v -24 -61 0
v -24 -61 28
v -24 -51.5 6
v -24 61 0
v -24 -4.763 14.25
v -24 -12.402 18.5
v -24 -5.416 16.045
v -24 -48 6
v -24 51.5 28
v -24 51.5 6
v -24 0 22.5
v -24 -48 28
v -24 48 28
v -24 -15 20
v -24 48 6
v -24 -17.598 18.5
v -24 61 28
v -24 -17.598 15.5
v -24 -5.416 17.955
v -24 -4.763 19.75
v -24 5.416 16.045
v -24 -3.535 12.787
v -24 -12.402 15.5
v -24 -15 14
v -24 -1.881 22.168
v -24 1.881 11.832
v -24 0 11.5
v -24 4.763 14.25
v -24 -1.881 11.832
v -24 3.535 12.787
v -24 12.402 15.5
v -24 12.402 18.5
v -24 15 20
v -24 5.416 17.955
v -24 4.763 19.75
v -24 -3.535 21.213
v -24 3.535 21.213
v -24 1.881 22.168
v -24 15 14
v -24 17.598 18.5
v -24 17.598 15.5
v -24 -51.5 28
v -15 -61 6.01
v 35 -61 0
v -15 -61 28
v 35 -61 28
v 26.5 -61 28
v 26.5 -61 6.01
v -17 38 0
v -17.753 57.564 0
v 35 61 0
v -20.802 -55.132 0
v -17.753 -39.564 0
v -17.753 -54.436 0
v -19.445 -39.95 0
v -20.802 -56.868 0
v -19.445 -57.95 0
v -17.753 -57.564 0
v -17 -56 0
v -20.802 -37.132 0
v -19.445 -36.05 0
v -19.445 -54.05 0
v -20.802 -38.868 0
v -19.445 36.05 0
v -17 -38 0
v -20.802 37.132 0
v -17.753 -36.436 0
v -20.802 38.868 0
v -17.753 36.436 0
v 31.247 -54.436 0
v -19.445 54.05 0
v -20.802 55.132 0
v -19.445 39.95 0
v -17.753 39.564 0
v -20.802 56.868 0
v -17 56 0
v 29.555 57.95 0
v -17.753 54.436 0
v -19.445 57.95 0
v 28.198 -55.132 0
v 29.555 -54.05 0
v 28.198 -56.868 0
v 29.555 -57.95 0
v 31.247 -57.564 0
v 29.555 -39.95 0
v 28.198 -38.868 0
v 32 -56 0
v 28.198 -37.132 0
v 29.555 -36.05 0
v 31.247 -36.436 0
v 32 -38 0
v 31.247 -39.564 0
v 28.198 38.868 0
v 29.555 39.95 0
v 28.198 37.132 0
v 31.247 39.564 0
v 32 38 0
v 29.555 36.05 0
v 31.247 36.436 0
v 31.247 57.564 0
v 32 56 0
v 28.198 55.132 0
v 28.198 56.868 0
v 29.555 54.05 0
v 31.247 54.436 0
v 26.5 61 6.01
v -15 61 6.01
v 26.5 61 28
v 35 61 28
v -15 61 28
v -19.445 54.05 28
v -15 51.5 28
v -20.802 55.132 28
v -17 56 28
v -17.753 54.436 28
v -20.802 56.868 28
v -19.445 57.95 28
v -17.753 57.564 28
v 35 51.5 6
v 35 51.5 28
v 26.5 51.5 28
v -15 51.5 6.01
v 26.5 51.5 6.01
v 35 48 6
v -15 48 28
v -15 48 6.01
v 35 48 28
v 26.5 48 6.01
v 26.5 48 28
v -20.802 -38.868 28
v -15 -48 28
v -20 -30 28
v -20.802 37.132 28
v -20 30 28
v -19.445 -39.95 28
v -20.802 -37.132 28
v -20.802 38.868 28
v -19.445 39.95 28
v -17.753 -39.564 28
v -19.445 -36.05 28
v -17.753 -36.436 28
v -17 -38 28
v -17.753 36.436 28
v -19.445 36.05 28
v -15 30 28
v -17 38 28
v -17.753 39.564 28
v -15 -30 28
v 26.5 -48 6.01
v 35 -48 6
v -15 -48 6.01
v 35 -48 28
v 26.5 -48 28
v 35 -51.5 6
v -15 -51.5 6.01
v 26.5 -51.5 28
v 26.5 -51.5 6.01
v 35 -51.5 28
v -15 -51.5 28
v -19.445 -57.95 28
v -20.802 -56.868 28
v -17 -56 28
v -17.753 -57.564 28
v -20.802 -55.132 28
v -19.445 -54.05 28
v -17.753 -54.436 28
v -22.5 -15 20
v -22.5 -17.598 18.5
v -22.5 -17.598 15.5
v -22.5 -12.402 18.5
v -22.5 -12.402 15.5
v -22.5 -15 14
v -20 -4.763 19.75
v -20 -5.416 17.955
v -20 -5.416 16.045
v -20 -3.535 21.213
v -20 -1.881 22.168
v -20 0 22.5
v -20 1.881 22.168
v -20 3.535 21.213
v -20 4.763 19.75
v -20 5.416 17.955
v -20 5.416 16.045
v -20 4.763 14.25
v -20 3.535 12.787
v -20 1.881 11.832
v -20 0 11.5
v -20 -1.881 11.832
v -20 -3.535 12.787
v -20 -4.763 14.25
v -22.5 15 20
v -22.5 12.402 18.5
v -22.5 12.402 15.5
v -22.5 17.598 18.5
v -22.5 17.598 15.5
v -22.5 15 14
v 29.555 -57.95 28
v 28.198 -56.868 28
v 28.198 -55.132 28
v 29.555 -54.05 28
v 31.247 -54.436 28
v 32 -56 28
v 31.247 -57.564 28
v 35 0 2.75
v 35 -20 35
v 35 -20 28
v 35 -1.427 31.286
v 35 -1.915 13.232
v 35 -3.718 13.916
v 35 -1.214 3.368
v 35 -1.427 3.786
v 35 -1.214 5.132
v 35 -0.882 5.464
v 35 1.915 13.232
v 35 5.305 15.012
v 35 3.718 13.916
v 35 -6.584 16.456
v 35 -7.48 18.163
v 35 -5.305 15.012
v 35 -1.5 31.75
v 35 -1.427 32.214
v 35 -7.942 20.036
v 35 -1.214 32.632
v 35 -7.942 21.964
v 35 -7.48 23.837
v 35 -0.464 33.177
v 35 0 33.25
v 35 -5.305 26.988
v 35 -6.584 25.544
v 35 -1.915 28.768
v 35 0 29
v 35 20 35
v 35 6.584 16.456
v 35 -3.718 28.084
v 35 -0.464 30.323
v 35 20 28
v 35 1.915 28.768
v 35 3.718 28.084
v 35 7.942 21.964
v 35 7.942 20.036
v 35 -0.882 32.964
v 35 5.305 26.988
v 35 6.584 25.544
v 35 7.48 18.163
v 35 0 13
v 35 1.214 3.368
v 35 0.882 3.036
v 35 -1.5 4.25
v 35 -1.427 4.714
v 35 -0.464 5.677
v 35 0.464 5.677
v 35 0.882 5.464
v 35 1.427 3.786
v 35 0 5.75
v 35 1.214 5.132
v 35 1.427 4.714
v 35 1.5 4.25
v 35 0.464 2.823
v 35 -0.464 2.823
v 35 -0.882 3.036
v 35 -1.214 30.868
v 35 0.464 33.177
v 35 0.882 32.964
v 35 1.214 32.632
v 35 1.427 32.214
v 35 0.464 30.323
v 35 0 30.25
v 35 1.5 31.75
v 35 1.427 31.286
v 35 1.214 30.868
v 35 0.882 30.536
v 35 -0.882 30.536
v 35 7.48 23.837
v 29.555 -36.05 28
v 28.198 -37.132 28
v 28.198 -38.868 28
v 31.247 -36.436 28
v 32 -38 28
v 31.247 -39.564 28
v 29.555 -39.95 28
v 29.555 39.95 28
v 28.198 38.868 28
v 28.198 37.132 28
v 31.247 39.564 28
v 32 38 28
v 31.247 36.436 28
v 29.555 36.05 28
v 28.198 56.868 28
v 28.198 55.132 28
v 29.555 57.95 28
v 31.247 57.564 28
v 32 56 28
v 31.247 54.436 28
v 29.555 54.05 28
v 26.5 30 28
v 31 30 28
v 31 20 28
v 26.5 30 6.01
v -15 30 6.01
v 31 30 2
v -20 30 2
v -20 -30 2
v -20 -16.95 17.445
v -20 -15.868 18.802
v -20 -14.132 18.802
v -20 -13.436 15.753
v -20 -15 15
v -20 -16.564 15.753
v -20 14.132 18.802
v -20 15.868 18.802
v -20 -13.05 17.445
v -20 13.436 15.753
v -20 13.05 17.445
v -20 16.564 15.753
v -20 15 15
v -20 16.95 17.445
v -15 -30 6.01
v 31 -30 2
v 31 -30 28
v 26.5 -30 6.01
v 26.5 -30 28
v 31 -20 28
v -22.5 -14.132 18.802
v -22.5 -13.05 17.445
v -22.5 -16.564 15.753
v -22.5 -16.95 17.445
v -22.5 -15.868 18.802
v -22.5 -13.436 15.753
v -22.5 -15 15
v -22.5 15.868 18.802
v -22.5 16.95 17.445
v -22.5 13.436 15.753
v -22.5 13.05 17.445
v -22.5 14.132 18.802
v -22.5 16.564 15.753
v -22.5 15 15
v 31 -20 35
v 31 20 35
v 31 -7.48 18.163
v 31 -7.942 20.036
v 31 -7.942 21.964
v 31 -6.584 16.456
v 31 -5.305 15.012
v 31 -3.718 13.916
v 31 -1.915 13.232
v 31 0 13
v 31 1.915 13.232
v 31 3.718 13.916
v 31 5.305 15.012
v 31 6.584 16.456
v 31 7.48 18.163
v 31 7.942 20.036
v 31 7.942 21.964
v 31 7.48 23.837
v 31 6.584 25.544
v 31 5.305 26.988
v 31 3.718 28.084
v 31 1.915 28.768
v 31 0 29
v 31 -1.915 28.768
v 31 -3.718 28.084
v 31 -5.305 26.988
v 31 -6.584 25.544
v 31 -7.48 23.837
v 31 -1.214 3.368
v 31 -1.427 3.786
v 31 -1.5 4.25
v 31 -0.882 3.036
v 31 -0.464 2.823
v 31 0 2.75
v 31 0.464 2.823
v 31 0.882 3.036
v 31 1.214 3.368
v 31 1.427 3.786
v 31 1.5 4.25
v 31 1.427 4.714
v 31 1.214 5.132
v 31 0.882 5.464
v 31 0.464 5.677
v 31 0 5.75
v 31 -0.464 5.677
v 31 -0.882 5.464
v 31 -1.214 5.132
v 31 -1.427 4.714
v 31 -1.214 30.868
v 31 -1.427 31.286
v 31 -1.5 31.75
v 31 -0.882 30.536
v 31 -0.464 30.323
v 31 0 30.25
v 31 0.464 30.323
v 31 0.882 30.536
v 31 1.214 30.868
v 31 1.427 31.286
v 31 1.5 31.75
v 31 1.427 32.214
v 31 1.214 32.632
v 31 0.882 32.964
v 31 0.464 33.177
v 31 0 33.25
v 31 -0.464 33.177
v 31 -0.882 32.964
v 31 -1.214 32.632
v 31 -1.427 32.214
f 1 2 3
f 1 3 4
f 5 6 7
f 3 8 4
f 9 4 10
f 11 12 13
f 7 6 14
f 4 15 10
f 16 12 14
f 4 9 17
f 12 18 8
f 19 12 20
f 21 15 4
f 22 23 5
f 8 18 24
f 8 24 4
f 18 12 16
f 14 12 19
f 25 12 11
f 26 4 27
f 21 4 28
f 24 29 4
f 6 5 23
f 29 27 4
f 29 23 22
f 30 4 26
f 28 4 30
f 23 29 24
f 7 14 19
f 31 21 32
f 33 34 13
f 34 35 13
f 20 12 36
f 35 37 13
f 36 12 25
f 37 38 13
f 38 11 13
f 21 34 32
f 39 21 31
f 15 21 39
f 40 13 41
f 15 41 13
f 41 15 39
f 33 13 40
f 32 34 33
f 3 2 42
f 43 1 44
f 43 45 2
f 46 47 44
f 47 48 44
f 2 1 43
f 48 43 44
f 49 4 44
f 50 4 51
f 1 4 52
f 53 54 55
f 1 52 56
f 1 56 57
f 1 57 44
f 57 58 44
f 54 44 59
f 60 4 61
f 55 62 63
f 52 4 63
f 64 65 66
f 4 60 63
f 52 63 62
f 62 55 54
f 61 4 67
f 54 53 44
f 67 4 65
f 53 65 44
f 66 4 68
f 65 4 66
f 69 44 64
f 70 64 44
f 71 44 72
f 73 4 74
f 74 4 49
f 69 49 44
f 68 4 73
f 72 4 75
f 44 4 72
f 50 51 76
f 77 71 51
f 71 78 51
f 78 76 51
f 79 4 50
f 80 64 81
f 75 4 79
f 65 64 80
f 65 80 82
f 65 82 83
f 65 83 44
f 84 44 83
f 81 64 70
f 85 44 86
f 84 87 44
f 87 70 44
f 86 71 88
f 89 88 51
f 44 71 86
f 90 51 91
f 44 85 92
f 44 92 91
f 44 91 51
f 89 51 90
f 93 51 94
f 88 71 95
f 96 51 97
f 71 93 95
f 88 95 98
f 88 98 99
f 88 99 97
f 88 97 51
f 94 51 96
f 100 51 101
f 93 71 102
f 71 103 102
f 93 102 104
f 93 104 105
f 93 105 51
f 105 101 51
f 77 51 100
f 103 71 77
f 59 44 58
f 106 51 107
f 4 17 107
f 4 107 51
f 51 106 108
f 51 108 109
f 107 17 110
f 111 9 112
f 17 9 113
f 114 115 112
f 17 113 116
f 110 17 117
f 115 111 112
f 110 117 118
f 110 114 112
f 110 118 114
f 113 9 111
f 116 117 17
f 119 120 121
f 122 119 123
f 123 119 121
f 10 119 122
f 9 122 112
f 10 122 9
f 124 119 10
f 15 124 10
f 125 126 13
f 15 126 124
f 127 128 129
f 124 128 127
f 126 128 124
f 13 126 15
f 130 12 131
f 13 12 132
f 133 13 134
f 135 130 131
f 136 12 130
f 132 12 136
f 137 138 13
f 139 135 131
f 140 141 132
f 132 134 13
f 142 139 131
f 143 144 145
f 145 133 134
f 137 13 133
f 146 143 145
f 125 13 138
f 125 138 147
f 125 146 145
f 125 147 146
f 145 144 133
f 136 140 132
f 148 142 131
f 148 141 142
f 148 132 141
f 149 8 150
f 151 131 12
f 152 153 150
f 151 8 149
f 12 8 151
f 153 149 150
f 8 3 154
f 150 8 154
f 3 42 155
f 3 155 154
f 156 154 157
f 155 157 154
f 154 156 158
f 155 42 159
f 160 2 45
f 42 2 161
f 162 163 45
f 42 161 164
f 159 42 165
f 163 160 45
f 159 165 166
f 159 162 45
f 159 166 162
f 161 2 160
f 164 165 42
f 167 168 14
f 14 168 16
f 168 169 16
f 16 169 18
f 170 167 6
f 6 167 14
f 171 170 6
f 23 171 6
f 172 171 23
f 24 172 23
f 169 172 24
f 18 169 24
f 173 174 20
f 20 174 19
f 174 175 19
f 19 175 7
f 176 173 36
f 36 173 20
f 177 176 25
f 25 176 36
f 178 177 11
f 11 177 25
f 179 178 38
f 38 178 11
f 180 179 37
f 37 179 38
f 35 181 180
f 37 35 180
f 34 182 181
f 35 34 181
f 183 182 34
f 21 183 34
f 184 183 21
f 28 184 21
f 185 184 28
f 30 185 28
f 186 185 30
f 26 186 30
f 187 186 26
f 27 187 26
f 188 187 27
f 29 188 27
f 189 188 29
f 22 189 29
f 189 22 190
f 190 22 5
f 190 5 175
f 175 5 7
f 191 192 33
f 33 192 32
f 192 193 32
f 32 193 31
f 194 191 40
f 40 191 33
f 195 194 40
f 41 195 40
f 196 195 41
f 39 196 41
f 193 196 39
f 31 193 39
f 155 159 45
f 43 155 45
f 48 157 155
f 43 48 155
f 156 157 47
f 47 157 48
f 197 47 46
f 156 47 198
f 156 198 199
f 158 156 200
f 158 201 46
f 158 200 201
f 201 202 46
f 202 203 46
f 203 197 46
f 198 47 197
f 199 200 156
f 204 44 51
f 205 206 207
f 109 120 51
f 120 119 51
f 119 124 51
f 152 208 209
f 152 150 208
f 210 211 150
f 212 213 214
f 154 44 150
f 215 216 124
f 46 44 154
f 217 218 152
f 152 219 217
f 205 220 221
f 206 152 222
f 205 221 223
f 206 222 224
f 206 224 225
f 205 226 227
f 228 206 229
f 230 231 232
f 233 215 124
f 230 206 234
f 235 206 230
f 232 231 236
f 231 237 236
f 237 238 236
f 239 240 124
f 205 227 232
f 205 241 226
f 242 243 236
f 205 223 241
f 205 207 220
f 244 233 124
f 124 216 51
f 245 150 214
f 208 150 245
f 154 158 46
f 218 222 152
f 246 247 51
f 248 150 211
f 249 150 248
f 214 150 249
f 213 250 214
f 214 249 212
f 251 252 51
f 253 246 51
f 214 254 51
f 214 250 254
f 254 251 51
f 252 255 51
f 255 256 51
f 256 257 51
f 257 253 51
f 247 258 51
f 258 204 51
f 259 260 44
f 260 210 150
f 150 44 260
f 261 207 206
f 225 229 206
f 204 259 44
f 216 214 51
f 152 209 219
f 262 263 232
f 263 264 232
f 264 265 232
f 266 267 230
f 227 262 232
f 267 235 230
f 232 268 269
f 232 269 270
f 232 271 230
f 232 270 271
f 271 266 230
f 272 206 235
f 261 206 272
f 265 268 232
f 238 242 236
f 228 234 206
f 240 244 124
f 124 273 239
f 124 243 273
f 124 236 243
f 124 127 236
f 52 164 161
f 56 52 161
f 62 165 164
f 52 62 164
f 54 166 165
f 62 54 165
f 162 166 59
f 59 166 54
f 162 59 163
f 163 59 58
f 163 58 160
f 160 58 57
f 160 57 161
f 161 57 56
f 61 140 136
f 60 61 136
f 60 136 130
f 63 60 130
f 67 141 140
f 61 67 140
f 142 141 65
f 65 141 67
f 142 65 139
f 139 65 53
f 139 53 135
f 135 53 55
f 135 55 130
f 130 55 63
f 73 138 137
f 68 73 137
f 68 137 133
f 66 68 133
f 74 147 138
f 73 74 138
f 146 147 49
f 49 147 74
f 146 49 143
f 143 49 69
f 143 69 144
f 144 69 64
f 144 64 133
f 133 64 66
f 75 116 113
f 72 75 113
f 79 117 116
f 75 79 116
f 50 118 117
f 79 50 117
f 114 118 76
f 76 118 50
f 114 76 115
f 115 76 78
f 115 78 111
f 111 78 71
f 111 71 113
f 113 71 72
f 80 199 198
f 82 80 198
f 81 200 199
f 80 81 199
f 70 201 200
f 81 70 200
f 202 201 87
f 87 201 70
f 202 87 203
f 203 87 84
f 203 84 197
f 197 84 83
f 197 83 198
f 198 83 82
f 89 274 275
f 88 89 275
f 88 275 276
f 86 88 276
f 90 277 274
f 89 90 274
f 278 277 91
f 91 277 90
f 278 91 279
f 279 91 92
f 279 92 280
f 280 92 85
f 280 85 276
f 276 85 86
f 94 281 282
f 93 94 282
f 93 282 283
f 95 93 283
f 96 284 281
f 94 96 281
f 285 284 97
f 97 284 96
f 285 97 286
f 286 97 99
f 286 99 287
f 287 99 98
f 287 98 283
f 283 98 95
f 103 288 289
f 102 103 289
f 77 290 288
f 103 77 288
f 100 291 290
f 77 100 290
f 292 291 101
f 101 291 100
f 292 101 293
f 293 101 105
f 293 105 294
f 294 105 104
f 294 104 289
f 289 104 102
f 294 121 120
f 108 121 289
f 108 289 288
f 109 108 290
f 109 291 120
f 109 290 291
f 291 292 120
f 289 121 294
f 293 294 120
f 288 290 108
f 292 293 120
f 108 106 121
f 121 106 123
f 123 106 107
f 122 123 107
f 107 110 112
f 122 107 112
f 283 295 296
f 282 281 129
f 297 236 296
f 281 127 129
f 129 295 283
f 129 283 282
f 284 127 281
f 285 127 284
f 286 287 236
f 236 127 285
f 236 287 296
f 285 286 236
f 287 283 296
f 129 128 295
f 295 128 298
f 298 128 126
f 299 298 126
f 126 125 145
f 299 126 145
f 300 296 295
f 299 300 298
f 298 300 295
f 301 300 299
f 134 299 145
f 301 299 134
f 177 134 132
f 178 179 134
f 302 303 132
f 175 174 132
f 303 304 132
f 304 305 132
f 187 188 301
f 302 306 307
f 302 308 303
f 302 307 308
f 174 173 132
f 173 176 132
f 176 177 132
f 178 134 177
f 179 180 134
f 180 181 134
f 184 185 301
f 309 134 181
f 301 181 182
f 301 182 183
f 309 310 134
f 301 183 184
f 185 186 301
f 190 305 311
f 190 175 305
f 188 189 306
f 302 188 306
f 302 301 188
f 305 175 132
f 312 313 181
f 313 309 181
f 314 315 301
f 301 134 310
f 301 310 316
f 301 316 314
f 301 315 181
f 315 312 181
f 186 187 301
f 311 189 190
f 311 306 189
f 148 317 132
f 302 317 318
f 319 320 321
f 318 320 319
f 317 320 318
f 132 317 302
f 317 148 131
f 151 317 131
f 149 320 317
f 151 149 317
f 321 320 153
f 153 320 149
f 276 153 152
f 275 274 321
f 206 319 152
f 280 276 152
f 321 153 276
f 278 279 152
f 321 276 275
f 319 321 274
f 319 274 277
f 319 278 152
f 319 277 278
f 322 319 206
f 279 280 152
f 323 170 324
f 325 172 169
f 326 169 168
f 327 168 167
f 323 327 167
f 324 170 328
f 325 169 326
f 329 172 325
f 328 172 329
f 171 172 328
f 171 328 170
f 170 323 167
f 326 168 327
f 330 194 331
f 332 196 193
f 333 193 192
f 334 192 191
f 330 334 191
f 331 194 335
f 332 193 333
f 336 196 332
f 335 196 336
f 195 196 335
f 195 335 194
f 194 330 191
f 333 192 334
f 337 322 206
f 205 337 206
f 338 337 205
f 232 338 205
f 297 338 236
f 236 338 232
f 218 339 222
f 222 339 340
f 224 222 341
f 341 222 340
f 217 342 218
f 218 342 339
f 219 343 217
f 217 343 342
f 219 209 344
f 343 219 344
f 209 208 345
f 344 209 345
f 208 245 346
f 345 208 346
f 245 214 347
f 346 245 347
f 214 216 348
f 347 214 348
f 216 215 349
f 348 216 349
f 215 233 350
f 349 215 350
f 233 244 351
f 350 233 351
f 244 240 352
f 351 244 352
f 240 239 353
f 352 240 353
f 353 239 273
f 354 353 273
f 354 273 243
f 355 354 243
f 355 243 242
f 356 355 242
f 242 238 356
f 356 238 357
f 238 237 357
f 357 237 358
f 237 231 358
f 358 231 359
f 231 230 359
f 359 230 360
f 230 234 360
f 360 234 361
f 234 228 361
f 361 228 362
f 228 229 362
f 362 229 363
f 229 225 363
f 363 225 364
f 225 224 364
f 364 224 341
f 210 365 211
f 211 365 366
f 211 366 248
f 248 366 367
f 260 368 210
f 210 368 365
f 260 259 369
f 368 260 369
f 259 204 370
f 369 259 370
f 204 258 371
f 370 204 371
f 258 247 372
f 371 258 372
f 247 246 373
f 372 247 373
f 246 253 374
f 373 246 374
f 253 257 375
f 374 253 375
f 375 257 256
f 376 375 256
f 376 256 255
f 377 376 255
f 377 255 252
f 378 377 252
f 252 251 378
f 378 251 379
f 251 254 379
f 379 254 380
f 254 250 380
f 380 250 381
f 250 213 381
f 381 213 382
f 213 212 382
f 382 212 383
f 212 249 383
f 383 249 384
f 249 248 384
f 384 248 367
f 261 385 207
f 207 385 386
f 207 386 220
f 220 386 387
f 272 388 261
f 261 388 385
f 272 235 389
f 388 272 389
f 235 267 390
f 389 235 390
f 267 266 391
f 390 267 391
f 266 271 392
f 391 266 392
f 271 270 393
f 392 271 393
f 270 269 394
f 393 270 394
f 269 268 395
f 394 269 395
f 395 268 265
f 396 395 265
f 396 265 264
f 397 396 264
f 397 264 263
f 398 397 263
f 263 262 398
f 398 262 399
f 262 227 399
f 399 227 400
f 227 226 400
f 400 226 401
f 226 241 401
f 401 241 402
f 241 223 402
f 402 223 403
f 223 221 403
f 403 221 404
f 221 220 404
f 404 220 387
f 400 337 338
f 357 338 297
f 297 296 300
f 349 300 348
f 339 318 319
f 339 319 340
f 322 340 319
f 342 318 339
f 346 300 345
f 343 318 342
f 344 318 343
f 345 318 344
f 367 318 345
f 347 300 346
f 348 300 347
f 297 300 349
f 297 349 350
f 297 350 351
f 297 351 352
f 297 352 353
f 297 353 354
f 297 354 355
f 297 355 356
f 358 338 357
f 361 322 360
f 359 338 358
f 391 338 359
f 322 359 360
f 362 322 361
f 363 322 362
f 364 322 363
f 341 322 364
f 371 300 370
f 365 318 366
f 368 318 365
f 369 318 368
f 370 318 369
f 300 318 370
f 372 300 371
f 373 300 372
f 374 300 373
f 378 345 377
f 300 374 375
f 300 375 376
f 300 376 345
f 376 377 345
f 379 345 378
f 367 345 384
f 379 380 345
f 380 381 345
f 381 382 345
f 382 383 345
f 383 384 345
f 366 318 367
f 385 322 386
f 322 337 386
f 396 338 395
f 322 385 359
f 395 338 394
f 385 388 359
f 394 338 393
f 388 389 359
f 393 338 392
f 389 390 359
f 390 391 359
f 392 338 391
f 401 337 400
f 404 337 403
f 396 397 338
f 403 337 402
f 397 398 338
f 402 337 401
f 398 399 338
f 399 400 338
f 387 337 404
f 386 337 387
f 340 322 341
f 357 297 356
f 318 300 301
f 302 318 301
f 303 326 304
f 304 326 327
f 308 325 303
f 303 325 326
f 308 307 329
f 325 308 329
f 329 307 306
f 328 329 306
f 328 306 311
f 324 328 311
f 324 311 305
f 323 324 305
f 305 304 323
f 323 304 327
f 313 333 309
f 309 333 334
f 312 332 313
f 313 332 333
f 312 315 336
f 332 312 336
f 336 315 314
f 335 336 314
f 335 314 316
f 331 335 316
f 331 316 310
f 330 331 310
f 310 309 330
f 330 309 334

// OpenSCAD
//Arduino Mega Board: 54x102x10


module pasantes(y){
y=y-10;
	translate([30,y/2,-1])cylinder(r=2,h=70);
	translate([30,-y/2,-1])cylinder(r=2,h=70);
	translate([-19,y/2,-1])cylinder(r=2,h=70);
	translate([-19,-y/2,-1])cylinder(r=2,h=70);
	translate([30,y/2-18,-1])cylinder(r=2,h=70);
	translate([30,-y/2+18,-1])cylinder(r=2,h=70);
	translate([-19,y/2-18,-1])cylinder(r=2,h=70);
	translate([-19,-y/2+18,-1])cylinder(r=2,h=70);
}

module servo(z){
	cube([41.5,22,z]);
	translate([-3,6,0])union(){
		//cylinder(r=2, h=z,$fn=20);
		//translate([48,0,0])cylinder(r=2, h=z,$fn=20);
		//translate([48,10,0])cylinder(r=2, h=z,$fn=20);
		//translate([0,10,0])cylinder(r=2, h=z,$fn=20);
	}
}

module miniservo(z){
	//cube([24,14,z]);
	translate([15,7,0])rotate([0,0,0])cylinder(r=8,h=z);
	translate([-1.75,7,0])union(){
		cylinder(r=1.5, h=z,$fn=20);
		translate([27.5,0,0])cylinder(r=1.5, h=z,$fn=20);
		
	}
}

module tuerca(){ //M3
	cylinder(r=2.6, h=4,$fn=6);
}

xmax=67;
ymax=122;
R=8;
difference(){
	union(){
		translate([-64/2+R,-ymax/2,0])cube([xmax-R,ymax,28]);
		translate([-64/2+20,-20,0])cube([47,40,35]);		
	}
	translate([-20,-30,2])cube([51,60,34]); //cajeado

	difference(){
		translate([-15,75,6.01])rotate([90,0,0])servo(150);
		translate([30.8,0,6])cube([10,59.9,70],center=true);
	}
	
//Huecos para tuercas
//	translate([-18,28,12])rotate([90,0,0]){
//		translate([0,0,-5.5])rotate([0,0,30])tuerca();
//		translate([48,0,-5.5])rotate([0,0,30])tuerca();
//		translate([48,10,-5.5])rotate([0,0,30])tuerca();
//		translate([0,10,-5.5])rotate([0,0,30])tuerca();
//	}
//	mirror([0,1,0])translate([-18,28,12])rotate([90,0,0]){
//		translate([0,0,-5.5])rotate([0,0,30])tuerca();
//		translate([48,0,-5.5])rotate([0,0,30])tuerca();
//		translate([48,10,-5.5])rotate([0,0,30])tuerca();
//		translate([0,10,-5.5])rotate([0,0,30])tuerca();
//	}






	translate([40,-7,6])rotate([0,-90,0])miniservo(30);

//Cruceta del servo	
	translate([-50,0,17])rotate([0,90,0])cylinder(r=5.5,h=40);
	translate([-50,+15,17])rotate([0,90,0])cylinder(r=2,h=40);
	translate([-50,-15,17])rotate([0,90,0])cylinder(r=2,h=40);
	translate([-62.5,+15,17])rotate([0,90,0])cylinder(r=3,h=40,$fn=6);
	translate([-62.5,-15,17])rotate([0,90,0])cylinder(r=3,h=40,$fn=6);


	translate([-32,ymax/2-13,6])cube([72,3.5,23]);
	mirror([0,1,0])translate([-32,ymax/2-13,6])cube([72,3.5,23]);

//Agujeros chasis
	pasantes(ymax);





}/**/
